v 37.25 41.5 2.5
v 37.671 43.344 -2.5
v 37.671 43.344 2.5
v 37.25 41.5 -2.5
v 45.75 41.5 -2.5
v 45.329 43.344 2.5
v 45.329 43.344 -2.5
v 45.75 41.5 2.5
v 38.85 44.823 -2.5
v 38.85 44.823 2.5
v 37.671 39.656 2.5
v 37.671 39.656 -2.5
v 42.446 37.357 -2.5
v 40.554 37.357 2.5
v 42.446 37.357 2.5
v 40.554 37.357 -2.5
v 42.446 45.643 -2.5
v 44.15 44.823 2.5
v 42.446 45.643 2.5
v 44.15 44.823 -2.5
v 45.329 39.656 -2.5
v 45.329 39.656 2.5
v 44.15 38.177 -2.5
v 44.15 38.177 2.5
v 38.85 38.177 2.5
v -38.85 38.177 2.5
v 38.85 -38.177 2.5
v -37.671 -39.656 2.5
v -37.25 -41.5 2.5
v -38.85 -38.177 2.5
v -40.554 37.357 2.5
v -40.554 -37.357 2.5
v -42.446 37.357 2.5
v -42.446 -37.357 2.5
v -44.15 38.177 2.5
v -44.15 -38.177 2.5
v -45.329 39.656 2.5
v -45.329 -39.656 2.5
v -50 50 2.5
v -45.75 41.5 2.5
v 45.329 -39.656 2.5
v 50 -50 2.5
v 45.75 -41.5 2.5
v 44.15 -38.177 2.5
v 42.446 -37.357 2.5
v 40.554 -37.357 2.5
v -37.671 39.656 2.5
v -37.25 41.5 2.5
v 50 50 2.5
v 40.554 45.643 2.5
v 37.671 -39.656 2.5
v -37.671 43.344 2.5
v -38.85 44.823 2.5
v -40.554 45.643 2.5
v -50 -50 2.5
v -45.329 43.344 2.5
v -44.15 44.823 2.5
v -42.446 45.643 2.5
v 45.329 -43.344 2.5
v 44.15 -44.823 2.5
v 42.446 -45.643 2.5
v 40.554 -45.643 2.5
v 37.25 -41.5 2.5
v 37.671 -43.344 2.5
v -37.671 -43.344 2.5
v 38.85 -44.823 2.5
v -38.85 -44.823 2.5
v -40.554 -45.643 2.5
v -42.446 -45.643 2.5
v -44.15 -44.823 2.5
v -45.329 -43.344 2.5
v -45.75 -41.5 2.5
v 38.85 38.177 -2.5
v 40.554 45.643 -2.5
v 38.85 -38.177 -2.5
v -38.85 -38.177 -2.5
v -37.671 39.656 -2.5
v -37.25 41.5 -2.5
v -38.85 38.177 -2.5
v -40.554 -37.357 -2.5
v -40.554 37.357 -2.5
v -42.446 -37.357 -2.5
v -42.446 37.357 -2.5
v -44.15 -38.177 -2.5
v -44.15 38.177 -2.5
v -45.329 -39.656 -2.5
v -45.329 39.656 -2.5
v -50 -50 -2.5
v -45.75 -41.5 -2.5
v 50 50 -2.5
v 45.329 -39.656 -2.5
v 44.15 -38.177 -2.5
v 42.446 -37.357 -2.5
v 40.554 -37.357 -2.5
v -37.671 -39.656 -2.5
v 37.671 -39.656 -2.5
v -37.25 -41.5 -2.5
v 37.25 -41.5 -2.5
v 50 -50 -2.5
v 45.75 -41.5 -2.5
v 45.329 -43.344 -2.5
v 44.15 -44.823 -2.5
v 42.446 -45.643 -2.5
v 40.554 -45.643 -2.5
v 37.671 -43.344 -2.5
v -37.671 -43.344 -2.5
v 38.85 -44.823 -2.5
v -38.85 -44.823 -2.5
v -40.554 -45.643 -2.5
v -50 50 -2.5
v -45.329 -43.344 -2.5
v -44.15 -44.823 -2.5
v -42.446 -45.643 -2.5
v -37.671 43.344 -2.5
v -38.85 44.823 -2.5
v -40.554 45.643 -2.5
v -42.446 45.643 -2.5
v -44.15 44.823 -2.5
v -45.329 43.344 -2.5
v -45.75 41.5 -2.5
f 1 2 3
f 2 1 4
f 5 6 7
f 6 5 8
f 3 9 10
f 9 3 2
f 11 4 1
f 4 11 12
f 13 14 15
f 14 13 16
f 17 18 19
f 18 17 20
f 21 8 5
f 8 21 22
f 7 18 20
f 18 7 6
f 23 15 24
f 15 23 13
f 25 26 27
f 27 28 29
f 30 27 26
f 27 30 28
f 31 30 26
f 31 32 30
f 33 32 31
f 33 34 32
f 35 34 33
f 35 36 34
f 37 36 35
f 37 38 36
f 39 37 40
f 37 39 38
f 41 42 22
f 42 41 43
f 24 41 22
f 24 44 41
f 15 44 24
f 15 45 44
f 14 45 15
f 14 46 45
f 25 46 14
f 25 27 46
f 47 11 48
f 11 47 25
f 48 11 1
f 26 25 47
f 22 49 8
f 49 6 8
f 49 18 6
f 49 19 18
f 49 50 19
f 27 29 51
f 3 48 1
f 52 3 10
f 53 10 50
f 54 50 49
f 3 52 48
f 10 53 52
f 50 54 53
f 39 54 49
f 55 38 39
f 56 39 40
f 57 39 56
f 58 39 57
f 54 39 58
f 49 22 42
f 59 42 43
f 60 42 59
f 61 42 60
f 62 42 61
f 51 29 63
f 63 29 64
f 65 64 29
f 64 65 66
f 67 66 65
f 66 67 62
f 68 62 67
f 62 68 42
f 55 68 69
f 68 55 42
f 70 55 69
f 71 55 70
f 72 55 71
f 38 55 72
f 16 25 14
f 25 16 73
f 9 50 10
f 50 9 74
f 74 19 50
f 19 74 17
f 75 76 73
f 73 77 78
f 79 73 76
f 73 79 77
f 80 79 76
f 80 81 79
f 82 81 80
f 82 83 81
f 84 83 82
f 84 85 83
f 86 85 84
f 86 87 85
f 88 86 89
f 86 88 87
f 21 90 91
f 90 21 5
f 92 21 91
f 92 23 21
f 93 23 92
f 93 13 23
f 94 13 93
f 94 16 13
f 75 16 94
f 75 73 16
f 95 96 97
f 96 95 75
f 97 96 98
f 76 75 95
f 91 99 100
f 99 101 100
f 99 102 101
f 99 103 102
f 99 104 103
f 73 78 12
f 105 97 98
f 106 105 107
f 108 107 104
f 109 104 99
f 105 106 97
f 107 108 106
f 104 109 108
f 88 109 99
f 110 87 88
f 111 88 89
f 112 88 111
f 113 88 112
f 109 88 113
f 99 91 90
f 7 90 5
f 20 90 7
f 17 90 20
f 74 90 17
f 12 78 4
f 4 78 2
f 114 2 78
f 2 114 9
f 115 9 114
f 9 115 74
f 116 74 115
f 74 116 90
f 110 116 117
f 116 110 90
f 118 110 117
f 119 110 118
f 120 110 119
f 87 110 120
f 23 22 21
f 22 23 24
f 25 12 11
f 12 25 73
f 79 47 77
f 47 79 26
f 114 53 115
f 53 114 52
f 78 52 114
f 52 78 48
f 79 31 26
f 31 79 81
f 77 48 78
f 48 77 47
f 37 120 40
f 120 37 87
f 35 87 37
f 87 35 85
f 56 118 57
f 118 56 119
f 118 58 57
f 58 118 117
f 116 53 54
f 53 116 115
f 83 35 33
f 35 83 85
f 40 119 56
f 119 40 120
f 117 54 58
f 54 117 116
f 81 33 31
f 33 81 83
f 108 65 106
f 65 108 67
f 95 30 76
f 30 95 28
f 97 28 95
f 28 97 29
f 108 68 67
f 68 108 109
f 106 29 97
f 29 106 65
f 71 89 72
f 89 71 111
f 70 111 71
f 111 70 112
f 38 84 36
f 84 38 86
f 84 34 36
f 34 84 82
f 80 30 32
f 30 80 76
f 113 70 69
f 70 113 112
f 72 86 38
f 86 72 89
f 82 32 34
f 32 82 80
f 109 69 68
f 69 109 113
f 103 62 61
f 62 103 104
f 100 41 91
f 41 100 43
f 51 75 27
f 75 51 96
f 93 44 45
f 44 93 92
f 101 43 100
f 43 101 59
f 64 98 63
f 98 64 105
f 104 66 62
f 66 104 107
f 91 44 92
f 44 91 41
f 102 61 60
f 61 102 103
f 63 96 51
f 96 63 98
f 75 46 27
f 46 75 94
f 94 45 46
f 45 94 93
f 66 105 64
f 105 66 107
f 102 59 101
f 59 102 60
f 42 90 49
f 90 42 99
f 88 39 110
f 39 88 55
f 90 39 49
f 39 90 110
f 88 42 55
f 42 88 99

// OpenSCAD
// Generated by SolidPython 1.1.3 on 2023-02-19 21:06:39


difference() {
	cube(center = true, size = [100, 100, 5]);
	union() {
		translate(v = [41.5000000000, 41.5000000000]) {
			cylinder(center = true, h = 5, r = 4.2500000000);
		}
		translate(v = [-41.5000000000, 41.5000000000]) {
			cylinder(center = true, h = 5, r = 4.2500000000);
		}
		translate(v = [-41.5000000000, -41.5000000000]) {
			cylinder(center = true, h = 5, r = 4.2500000000);
		}
		translate(v = [41.5000000000, -41.5000000000]) {
			cylinder(center = true, h = 5, r = 4.2500000000);
		}
	}
}
/***********************************************
*********      SolidPython code:      **********
************************************************
 
import solid
import numbers
import pudb
from solid.utils import *
import viewscad
import subprocess
import os
import os.path as osp
import math
import sys

chamfer_extrude=solid.import_scad("./chamfer_extrude.scad")
chamfer_extrude=chamfer_extrude.chamfer_extrude
r = viewscad.Renderer(width=800, height=800)

def debug(model,f_name,path="/home/ts/code/projects/mfd/designs/debug"):
    solid.scad_render_to_file(model,osp.join(path,f_name)+".scad")
#generate position list of wells using offset from center
wells_pos_from_center_4 = lambda offset: [[-offset,offset],
                                        [offset, offset],
                                        [-offset, -offset],
                                        [offset, -offset]]
#wells_pos_from_center_2 = lambda offset: [[0,offset],
#                                        [0, -offset]]
wells_pos_from_center_2 = lambda offset: [[offset,0],
                                        [-offset,0]]

def make_well(dims,shape=None,height=None,dxf=False):
    def circle_cylinder():
        if dxf or (height is None):
            well = solid.circle(r=dims, segments=64)
        else:
            well = solid.cylinder(r=dims, h=height, segments=64, center = True)
        return well
    if dims is None:
        sys.exit("radius needs to be a number")
    if isinstance(dims, numbers.Number):
        well =circle_cylinder()
    elif len(dims)==1:
        if isinstance(dims[1], numbers.Number):
            well =circle_cylinder()
        else:
            sys.exit("radius needs to be a number")
    elif len(dims)==2:
        well = solid.square(dims,center = True)
    elif len(dims)==3:
        well = solid.cube(dims, center = True)
    return well

def wells_top_bottom(center_gap,device_dims=None,shape=None,height=None, positions = None, dxf = False):
    well_shape = make_well(device_dims,shape=shape,height=height,dxf=dxf)
    wells = []
    if positions is None:
        offset = radius+radius/2.0
        positions = wells_pos_from_center_2(offset)
    if dxf or (height is None):
        height = 0
    for position in positions:
        if dxf:
            wells.append(solid.translate([position[0],position[1]])(well_shape))
        else:
            wells.append(solid.translate([position[0],position[1],height/2.0])(well_shape))
    return  union()(*wells)

#place wells in four corners 
def four_corner(radius,height=None, positions = None, dxf = False):
    #if well pos not specified set
    #to equally spaced by half radius
    if positions is None:
        offset = radius+radius/2.0
        positions = wells_pos_from_center_4(offset)
    if dxf or (height is None):
        height = 0
    #make wells at positions with specified radius and height
    wells = []
    for position in positions:
        #make circle if making dxf
        if dxf:
            well_shape = solid.circle(r=radius, segments=64)
            well_shape = solid.translate([position[0],position[1]])(well_shape)
        #if stl make cylinder
        else:
            well_shape = solid.cylinder(r=radius, h=height, segments=64, center = True)
            well_shape = solid.translate([position[0],position[1],height/2.0])(well_shape)
        wells.append(well_shape)
    return  union()(*wells)

#generate channels 
def make_channels(length,width,height=0,num_chans=1,max_chans=None,spacing=None, dxf = False,
                  rotate_channels=False):
    if dxf or (height is None):
        height = 0
    #if channel gap not defined, is equal to
    if spacing is None: spacing = width
    #calculate number of channels if fitting max num within given width
    if not max_chans is None:
        import math
        num_chans = math.floor((max_chans-spacing)/(width+spacing))
    #get total width of channel section  
    total_width = (width*num_chans)+(spacing*(num_chans-1))

    #make template channel
    #if rotate_channels: width, length = length, width
    if dxf:
        channel_t = solid.square([length,width],center = True)
    else:
        channel_t = solid.cube([length,width,height], center = True)

    #if number channels is even, offset the first channel to center its gap
    if num_chans % 2 == 0: centering = -(width/2.0+spacing/2.0)
    else: centering = 0
    #move template channel up to align bottom at z = 0 
    #and offset center if necessary
    if dxf:
        channel_t = solid.translate([0,centering])(channel_t)
    else:
        channel_t = solid.translate([0,centering,height/2.0])(channel_t)

    #if rotate_channels: length,width = width,length
    #start making the channels
    channels = []
    for i in range(num_chans):
        #if i=0 there is no translation
        #if i=1, we make the first channel adjacent to second
        direction = i

        #if i>=1, we add channels alternating left and right
        if i >= 1:
            direction = -(i/2.0)
            if i % 2 == 1: direction = (-direction)+0.5
                
        #make channel at right position and add it to channel list
        translation_coords = [0,direction*(width+spacing)]
        #if rotate_channels: translation_coords = [direction*(width+spacing),0]
        if dxf:
            channel = solid.translate(translation_coords)(channel_t)
        else:
            channel = solid.translate([*translation_coords,0])(channel_t)
        channels.append(channel)
    
    #group all channels as one object
    channels = union()(*channels)
    #compute the x,y,z dimensions in order to pass as arguments 
    #for construction of other parts of device (such as the chambers)
    measurements = {'x':(length/2.0,-length/2.0),
                    'y':(total_width/2.0,-total_width/2.0)}
    if not dxf:
        measurements['z'] = (height,0)
    if rotate_channels:
        channels = solid.rotate(90)(channels)
        measurements['x'],measurements['y']=measurements['y'],measurements['x']
    return channels,measurements

def make_chambers(msrs,height=None,extra=0,len_until=None,width=None, dxf = False):
    #computes x,y,z length
    total = lambda x : abs(x[0]) + abs(x[1])
    
    #if specific height if specified
    #otherwise use same height as channels
    if dxf:
        pass
    elif not height is None:
        msrs['z'] = (height,0)
    else:
        msrs['z'] = (0,0)
        
    #make copy of measurements from channels to modify chamber dimensions 
    #and add length to chambers as specified
    chamber_dims = msrs.copy()
    #calculate length of chamber to reach specified offset
    if not len_until is None:
        chamber_len = len_until-(msrs['x'][0])
    #or add specified length to channel length (if not specified, adds 0)
    else:
        chamber_len = msrs['x'][0]+extra
    #set the chamber length based 
    chamber_dims['x'] = (chamber_len/2.0,-(chamber_len/2.0))
    #compute final dimensions of chamber
    if not width is None:
        chamber_dims['y'] = (width/2.0,-width/2.0)
    chamber_dims = [total(size) for size in chamber_dims.values()]
        
    #calculate chamber translation offset to place adjacent to channels
    chamber_trslt = msrs['x'][0]+(chamber_len/2.0)
    #compute chamber translation coordinates to align with channels
    #x = 1 moves chamber above channels
    #x = -1 moves chamber below channels
    if dxf:
        trslt = lambda x : [x*(chamber_trslt),0]
    else:
        trslt = lambda x : [x*(chamber_trslt),0,msrs['z'][0]/2.0]
    
    #function to make chamber at top or at bottom 
    if dxf:
        move = lambda x : solid.translate(trslt(x))(solid.square(chamber_dims, center = True) )
    else:
        move = lambda x : solid.translate(trslt(x))(solid.cube(chamber_dims,center = True))
    #make top and bottom chambers and return them as grouped
    top = move(1)
    bottom = move(-1)
    #chambers=solid.rotate(90)(solid.union()(top,bottom))
    chambers=(solid.union()(top,bottom))

    return chambers

#create alignment features 
def alignment_features(unit,dims,grid_size, mask_size = None, alignment = "hollow", units_from_center = (2.5,2.5), corner_len=None):
    width = grid_size[0]*dims[0]
    length = grid_size[1]*dims[1]
    if mask_size is None and corner_len is None:
        corner_len = (dims[0] + dims[1]) /2 / 8
    corner = lambda thickness_div : solid.union()( solid.square([corner_len,corner_len/thickness_div],center=False), solid.square([corner_len/thickness_div,corner_len],center=False) )
    
    def make_full(thickness_div):
        thickness = corner_len/thickness_div
        tr = solid.translate([0, 0, 0 ])(solid.rotate(180)(corner(thickness_div)))
        tr = solid.translate([thickness/2,thickness/2,0])(tr)
        bl = solid.translate([0, 0, 0 ])(solid.rotate(0)(corner(thickness_div)))
        bl = solid.translate([-thickness/2,-thickness/2,0])(bl)
        return solid.union()(tr,bl)
    
    def make_hollow(thickness_div):
        thickness = corner_len/(thickness_div/2)
        inner = make_full(thickness_div)
        outer = make_full(thickness_div/2)
        hollow = outer - inner 
        return hollow
    
    center = (width /2 , length/2)
    mask_pos = lambda x,y : (center[0] + x*(float(units_from_center[0])*dims[0]), center[1] + y*(float(units_from_center[1])*dims[1]))
    positions = []
    positions.append(mask_pos(1,0))
    positions.append(mask_pos(0,1))
    positions.append(mask_pos(-1,0))
    positions.append(mask_pos(0,-1))
    make_mask = lambda mtype : make_hollow(8) if mtype == "hollow" else make_full(8)
    masks = [ solid.translate([*position,0])(make_mask(alignment)) for position in positions]
    
    solid.scad_render_to_file(solid.union()(*masks),"./designs/open_chamber/masks.scad")
    #return unit - solid.union()(*masks)
    return solid.union()(*masks,unit)

def create_outline(thickness, array, dims, grid_size,):
    width = grid_size[0]*dims[0] + thickness *2
    length = grid_size[1]*dims[1] + thickness *2
    outer = solid.translate([-thickness, -thickness,0])(solid.square([width, length]))
    return outer-array

def create_wall(wall_thickness, outline_thickness, dims, grid_size, wall_height = 2000, dxf = False):
    inner_width = grid_size[0]*dims[0] + outline_thickness *2
    inner_length = grid_size[1]*dims[1] + outline_thickness *2
    outer_width = inner_width + wall_thickness * 2
    outer_length = inner_length + wall_thickness * 2
    outer_pos_x = -outline_thickness-wall_thickness
    outer_pos_y = -outline_thickness-wall_thickness
    inner_pos_x = -outline_thickness
    inner_pos_y = -outline_thickness
    if dxf:
        inner_wall = solid.translate([inner_pos_x,
                                      inner_pos_y,
                                      0])(solid.square([inner_width, inner_length]))
        outer_wall = solid.translate([outer_pos_x,
                                      outer_pos_y,
                                      0])(solid.square([outer_width, outer_length]))

        return outer_wall-inner_wall
    else:
        inner_wall = solid.translate([inner_pos_x,
                                      inner_pos_y,
                                      0])(solid.cube([inner_width, inner_length,wall_height]))
        outer_wall = solid.translate([outer_pos_x,
                                      outer_pos_y,
                                      0])(solid.cube([outer_width, outer_length,wall_height]))

        return outer_wall-inner_wall, {'wall_height': wall_height,
                                       'wall_thickness': wall_thickness,
                                       'inner_width':inner_width,
                                       'inner_length': inner_length,
                                       'outer_width': outer_width,
                                       'outer_length': outer_length,
                                       'outer_pos_x' : outer_pos_x,
                                       'outer_pos_y' : outer_pos_y,
                                       'inner_pos_x' : inner_pos_x,
                                       'inner_pos_y' : inner_pos_y}

def create_thicker_wall(wall_thickness, outer_wall_offset, wall_dims, dims, grid_size, height_start = .2, height_end=2, dxf = False):
    addon_wall,thicker_wall_dims = create_wall(wall_thickness, outer_wall_offset, dims, grid_size, wall_height=height_end-height_start, dxf = False)
    addon_wall = solid.translate([0,0,height_start])(addon_wall)

    thicker_wall_dims['wall_height'] = height_end
    thicker_wall_dims['wall_thickness'] = wall_dims['wall_thickness'] + wall_thickness
    return addon_wall, thicker_wall_dims
 
def add_lock_to_wall(wall,wall_dims,y_offset = 0,cut_ratio=0.7,L_length=3, gap_ratio=0.05, axis="x",width_ratio=1/2):
    # Makes L shape
    def make_L(max_length,length_thickness,max_width,width_thickness,height,y_offset):
        length = solid.cube([max_length,length_thickness,height])
        width = solid.cube([width_thickness,max_width,height])
        width = solid.translate([max_length-(width_thickness),0,0])(width)
        L = solid.union()(width,length)
        debug(L,"L")
        if axis == "x":
            L = solid.rotate(-90)(L)
            L = solid.translate([0,max_length,0])(L)
        else:
            L = solid.rotate(-180)(L)
            L = solid.translate([max_length,max_width,0])(L)
        return solid.translate([0,0,y_offset])(L)
    
    lock_length = L_length
    lock_width = wall_dims['wall_thickness']*width_ratio
    lock_length_thickness = lock_width/2
    lock_width_thickness = lock_width/2
    L_lock = make_L(lock_length,lock_length_thickness,lock_width,lock_width_thickness, wall_dims['wall_height']-y_offset, y_offset)
    
    margin_space = lock_length - lock_length*(1-gap_ratio)
    key_length = lock_length-margin_space
    key_length_thickness = lock_length_thickness-(margin_space*2)
    key_width = lock_width-(margin_space*2)
    key_width_thickness = lock_width_thickness-(margin_space*2)
    L_key = make_L(key_length,key_length_thickness,key_width,key_width_thickness, wall_dims['wall_height']-y_offset, y_offset)
    L_key = solid.translate([margin_space,margin_space,0])(L_key)
    L = solid.union()(L_lock,L_key)
    debug(L,"L")
    
    #Make cube to be used as negative to split frame in a half
    #Can choose if making left or right negative, specify ratio of split
    def make_negative(right,cut_ratio):
        if axis == "x":
            if right:
                length = wall_dims['outer_length']*(1-cut_ratio)
                pos_x = wall_dims['outer_pos_x']+(wall_dims['outer_length']*cut_ratio)
            else:
                length = wall_dims['outer_length']*(cut_ratio)
                pos_x = wall_dims['outer_pos_x'] 
            negative = solid.cube([wall_dims['outer_width'],length, wall_dims['wall_height']])
            negative = solid.translate([wall_dims['outer_pos_y'],pos_x,0])(negative)
        else:
            if right:
                length = wall_dims['outer_width']*(1-cut_ratio)
                pos_x = wall_dims['outer_pos_y']+(wall_dims['outer_width']*cut_ratio)
            else:
                length = wall_dims['outer_width']*(cut_ratio)
                pos_x = wall_dims['outer_pos_y'] 
            negative = solid.cube([length,wall_dims['outer_length'], wall_dims['wall_height']])
            negative = solid.translate([pos_x,wall_dims['outer_pos_x'],0])(negative)
        return negative, pos_x, length 
                      
    #Make negatives
    negative_right, right_half_pos_x, right_half_length = make_negative(True,cut_ratio)
    negative_left, left_half_pos_x, right_half_length = make_negative(False,cut_ratio)
    #Make halves
    left_half = solid.difference()(wall,negative_right)
    right_half = solid.difference()(wall,negative_left)
    def place_L(L, L_length,L_width):
        #Place L on top wall       
        offset_to_center = (wall_dims['wall_thickness']-L_width)/2
        if axis == "x":
            y_pos_top = (wall_dims['outer_pos_y'] +
                    wall_dims['outer_width'] - 
                    L_width - offset_to_center)
            top_L = solid.translate([y_pos_top,
                                     right_half_pos_x-(L_length),
                                     0])(L)
            #Place L on bottom wall       
            y_pos_bottom = wall_dims['outer_pos_y']+offset_to_center
            bottom_L = solid.translate([y_pos_bottom,
                                        right_half_pos_x-L_length,
                                        0])(L)
        else:
            y_pos_top = (wall_dims['outer_pos_x'] +
                    wall_dims['outer_length'] -
                    (L_width+offset_to_center))
            top_L = solid.translate([right_half_pos_x-L_length,
                                     y_pos_top,
                                     0])(L)
            #Place L on bottom wall       
            y_pos_bottom = wall_dims['outer_pos_y']+offset_to_center
            bottom_L = solid.translate([right_half_pos_x-L_length,
                                        y_pos_bottom,
                                        0])(L)
        return bottom_L, top_L
    #Make complimentary L pieces through union and differences
    #Make Lock
    bottom_L_lock, top_L_lock = place_L(L_lock,L_length,lock_width)
    left_half = solid.difference()(left_half,bottom_L_lock)
    left_half = solid.difference()(left_half,top_L_lock)
    #Make Key
    bottom_L_key, top_L_key = place_L(L_key,L_length,lock_width)
    right_half = solid.union()(right_half,bottom_L_key)
    right_half = solid.union()(right_half,top_L_key)
    return left_half, right_half


#build a row x col grid of containment units
def make_unit_array(unit,dims,grid_size, dxf = False, alignment = None, mask_size = None,
                    units_from_center = None,alignment_offset=None, alignment_mark_size=1):
    units = []
    for col in range(grid_size[1]):
        for row in range(grid_size[0]):
            if dxf:
                units.append(solid.translate([row*dims[0],col*dims[1]])(unit))
            else:
                units.append(solid.translate([row*dims[0],col*dims[1],dims[2]/2.0])(unit))
    array = solid.union()(*units)
    if (not alignment is None) and dxf:
        if not alignment_offset is None:
            array = solid.translate([alignment_offset[0],alignment_offset[1]])(array)
        array = alignment_features(array,dims, grid_size, alignment = alignment, mask_size = None, units_from_center = units_from_center,corner_len=alignment_mark_size)
        if not alignment_offset is None:
            array = solid.translate([-alignment_offset[0],-alignment_offset[1]])(array)
    return array


def make_taylor(wells_pos = wells_pos_from_center_4(2.25), well_rad = 1.5 ,
                well_height = 2, chan_w = 0.01, chan_l = 1, chan_h = 0.010 ,
                chan_gap = 0.040, max_chans = None,num_chans=100, chamber_height  = 0.100,
                columns = 1, rows = 1, chamber_len_until=2.25, add_channels = True, add_wells = True, 
                add_chambers = True, save_path = "./", alignment = None, units_from_center = 2,
                mask_size = None, render_stl = False, outline_thickness = 0.050, dxf = True,
                wall_height = 15, wall_thickness = 0.95, casing_x=9, casing_y=9, casing_z=0,rotate_units=0):

    dims = [casing_x, casing_y, casing_z]
    wells = four_corner(well_rad,well_height, dxf = dxf, positions = wells_pos)
    debug(wells,"wells")
    channels, msrs = make_channels(chan_l,chan_w,chan_h,dxf=dxf, spacing = chan_gap, max_chans=max_chans,num_chans=num_chans)
    debug(channels,"channels")
    chambers = make_chambers(msrs,dxf = dxf, height=chamber_height,len_until=chamber_len_until)
    debug(chambers,"chambers")

    #add together and render
    device_parts = []
    if add_channels:
        device_parts.append(channels)
    if add_wells:
        device_parts.append(wells)
    if add_chambers:
        device_parts.append(chambers)
    device=union()(*device_parts)
    device = rotate(rotate_units)(device)

    device=solid.translate([dims[0]/2.0,dims[1]/2.0,0])(device)
    channels = rotate(rotate_units)(channels)
    channels=solid.translate([dims[0]/2,dims[1]/2,0])(channels)
    chambers_wells = union()(wells,chambers)
    chambers_wells = rotate(rotate_units)(chambers_wells)
    chambers_wells=solid.translate([dims[0]/2,dims[1]/2,0])(chambers_wells)

    file_name = str(rows)+'x'+str(columns)+'_units_'
    grid_size = [rows,columns]

    if alignment:
        alignment="full"
    device = make_unit_array(device,dims,grid_size, dxf=dxf, alignment = alignment,
                                 units_from_center = units_from_center)
    channels = make_unit_array(channels,dims,grid_size, dxf=dxf, alignment = alignment,
                                 units_from_center = units_from_center)
    if alignment=="full":
        alignment="hollow"

    chambers_wells = make_unit_array(chambers_wells,dims,grid_size, dxf=dxf, alignment = alignment,
                                 units_from_center =units_from_center)

    def save_model(model,prefix):
        model_fname = os.path.abspath(save_path+prefix+"_"+file_name+".scad")
        solid.scad_render_to_file(model,model_fname)
        return model_fname

    wells_fname = save_model(wells,"wells")
    channels_fname = save_model(channels,"channels")
    device_fname = save_model(device,"device")
    chambers_wells_fname = save_model(chambers_wells,"chambers_wells")
    return (chambers_wells,chambers_wells_fname), (channels,channels_fname), (device,device_fname)

def make_device(design='open',rows=8,columns=6,wells_pos = 4.5,well_offset=3.2, well_rad=3.2,well_height=0.1,
                chan_l=1,chan_w=0.01,chan_h=0.01,chan_gap=0.015,num_chans=101,dxf=True,save_path="./designs/open_chamber/",
                casing_x=9.0,casing_y=18.0,casing_z=0,rotate_units=90,units_from_center=(3,1),chamber_len_until=4.5,
                chamber_width=None,alignment=True, add_wells=True, add_channels=True,add_chambers=True):

    dims = [casing_x, casing_y, casing_z]
    if design == "open":
        wells_pos=wells_pos_from_center_2(wells_pos)
        wells = wells_top_bottom(well_offset*2,device_dims=well_rad,height=well_height, dxf = dxf, positions = wells_pos)
    elif design == "closed":
        wells_pos=wells_pos_from_center_4(wells_pos)
        debug(wells,"wells")
        wells = four_corner(well_offset,well_heightdevice_dims=well_rad, dxf = dxf, positions = wells_pos)
    else:
        print(design+" is not a valid design.\n Choose valid design: 'open' or 'closed'")
        exit()
    wells = rotate(rotate_units)(wells)
    wells=solid.translate([dims[0]/2,dims[1]/2,0])(wells)
    debug(wells,"wells")

    channels, msrs = make_channels(chan_l,chan_w,chan_h,dxf=dxf, spacing = chan_gap, num_chans=num_chans,rotate_channels=False)
    channels = rotate(rotate_units)(channels)
    channels=solid.translate([dims[0]/2,dims[1]/2,0])(channels)

    chambers=make_chambers(msrs,height=None,extra=0,len_until=chamber_len_until, width=chamber_width,dxf = dxf)
    chambers = rotate(rotate_units)(chambers)
    chambers=solid.translate([dims[0]/2,dims[1]/2,0])(chambers)

    device_parts = []
    if add_channels:
        device_parts.append(channels)
    if add_wells:
        device_parts.append(wells)
    if add_chambers:
        device_parts.append(chambers)
    device = union()(*device_parts)
    #device = rotate(rotate_units)(device)
    #device=solid.translate([dims[0]/2.0,dims[1]/2.0,0])(device)

    chambers_wells = []
    if add_chambers:
        chambers_wells.append(chambers)
    if add_wells:
        chambers_wells.append(wells)
    chambers_wells = union()(*chambers_wells)
    #chambers_wells = union()(wells,chambers)
    #chambers_wells = rotate(rotate_units)(chambers_wells)
    #chambers_wells=solid.translate([dims[0]/2,dims[1]/2,0])(chambers_wells)

    file_name = str(rows)+'x'+str(columns)+'_units_'

    grid_size = [rows,columns]
    if alignment:
        alignment="full"
    device = make_unit_array(device,dims,grid_size, dxf=dxf, alignment = alignment,
                                 units_from_center = units_from_center)
    channels = make_unit_array(channels,dims,grid_size, dxf=dxf, alignment = alignment,
                                 units_from_center = units_from_center)
    if alignment=="full":
        alignment="hollow"

    chambers_wells = make_unit_array(chambers_wells,dims,grid_size, dxf=dxf, alignment = alignment,
                                 units_from_center =units_from_center)

    def save_model(model,prefix):
        model_fname = os.path.abspath(save_path+prefix+"_"+file_name+".scad")
        solid.scad_render_to_file(model,model_fname)
        return model_fname

    wells_fname = save_model(wells,"wells")
    channels_fname = save_model(channels,"channels")
    device_fname = save_model(device,"device")
    chambers_wells_fname = save_model(chambers_wells,"chambers_wells")
    return (chambers_wells,chambers_wells_fname), (channels,channels_fname), (device,device_fname)


def make_open_chamber(rows=8,columns=6,wells_pos = wells_pos_from_center_2(4.5), well_rad=3.2,well_height=0.1,
                      chan_l=1,chan_w=0.01,chan_h=0.01,chan_gap=0.015,num_chans=101,dxf=True,save_path="./designs/open_chamber/",
                      casing_x=9.0,casing_y=18.0,casing_z=0,rotate_units=90,units_from_center=(3,1),chamber_len_until=4.5,
                      chamber_width=None,alignment=True, add_wells=True, add_channels=True,add_chambers=True):

    dims = [casing_x, casing_y, casing_z]
    wells = wells_top_bottom(well_rad,height=well_height, dxf = dxf, positions = wells_pos)
    channels, msrs = make_channels(chan_l,chan_w,chan_h,dxf=dxf, spacing = chan_gap, num_chans=num_chans,rotate_channels=False)
    chambers=make_chambers(msrs,height=None,extra=0,len_until=chamber_len_until, width=chamber_width,dxf = dxf)
    debug(chambers,"chambers")
    device_parts = []
    if add_channels:
        device_parts.append(channels)
    if add_wells:
        device_parts.append(wells)
    if add_chambers:
        device_parts.append(chambers)
    device = union()(*device_parts)
    device = rotate(rotate_units)(device)
    device=solid.translate([dims[0]/2.0,dims[1]/2.0,0])(device)
    channels = rotate(rotate_units)(channels)
    channels=solid.translate([dims[0]/2,dims[1]/2,0])(channels)
    chambers_wells = union()(wells,chambers)
    chambers_wells = rotate(rotate_units)(chambers_wells)
    chambers_wells=solid.translate([dims[0]/2,dims[1]/2,0])(chambers_wells)

    file_name = str(rows)+'x'+str(columns)+'_units_'

    grid_size = [rows,columns]
    if alignment:
        alignment="full"
    device = make_unit_array(device,dims,grid_size, dxf=dxf, alignment = alignment,
                                 units_from_center = units_from_center)
    channels = make_unit_array(channels,dims,grid_size, dxf=dxf, alignment = alignment,
                                 units_from_center = units_from_center)
    if alignment=="full":
        alignment="hollow"

    chambers_wells = make_unit_array(chambers_wells,dims,grid_size, dxf=dxf, alignment = alignment,
                                 units_from_center =units_from_center)

    def save_model(model,prefix):
        model_fname = os.path.abspath(save_path+prefix+"_"+file_name+".scad")
        solid.scad_render_to_file(model,model_fname)
        return model_fname

    wells_fname = save_model(wells,"wells")
    channels_fname = save_model(channels,"channels")
    device_fname = save_model(device,"device")
    chambers_wells_fname = save_model(chambers_wells,"chambers_wells")
    return (chambers_wells,chambers_wells_fname), (channels,channels_fname), (device,device_fname)

def to_dxf(scad_path):
    dxf_path = scad_path.replace(".scad",".dxf")
    subprocess.call(["openscad", "-o", dxf_path, scad_path])
    import ezdxf
    temp_dxf = ezdxf.readfile(dxf_path)
    temp_dxf.saveas(dxf_path)

#def make_walls(diameter,thickness,grid_size,dims,height=20,segments=256,make_inner=True):
#    wafer_wall_out = solid.cylinder(r=diameter/2,h=height, segments=segments)
#    wafer_wall_in = solid.cylinder(r=(diameter/2-thickness),h=height, segments=segments)
#    wafer_wall = solid.difference()(wafer_wall_out,wafer_wall_in)
#    wafer_wall = solid.translate([grid_size[1]*dims[1]/2.0,grid_size[0]*dims[0]/2.0])(wafer_wall)
#
#    vertical_wall_length = grid_size[1]*dims[1]
#    horizontal_wall_length = grid_size[0]*dims[0]
#    vertical_wall = solid.cube([vertical_wall_length,thickness,height],center = True)
#    vertical_wall = solid.translate([vertical_wall_length/2,0,height/2])(vertical_wall)
#    horizontal_wall = solid.cube([thickness,horizontal_wall_length,height],center = True)
#    horizontal_wall = solid.translate([0,vertical_wall_length/2,height/2])(horizontal_wall)
#    walls = []
#    walls.append(horizontal_wall)
#    walls.append(vertical_wall)
#    for col in range(grid_size[1]):
#        if col == grid_size[1]-1: 
#            walls.append(solid.translate([0,(col+1)*dims[1]])(vertical_wall))
#        elif col > 0 and col < grid_size[1]-1 and make_inner==True:
#            walls.append(solid.translate([0,(col+1)*dims[1]])(vertical_wall))
#    for row in range(grid_size[0]):
#        if row == grid_size[0]-1: 
#            walls.append(solid.translate([(row+1)*dims[0],0])(horizontal_wall))
#        elif row > 0 and row < grid_size[0]-1 and make_inner==True:
#            walls.append(solid.translate([(row+1)*dims[0],0])(horizontal_wall))
#    walls = union()(*walls)
#    wafer_walls = union()(walls,wafer_wall)
#    return walls,wafer_wall,wafer_walls

def make_walls(diameter,thickness,grid_size,dims,height=20,segments=256,make_inner=True,padx=0,pady=0):
    wafer_wall_out = solid.cylinder(r=diameter/2,h=height, segments=segments)
    wafer_wall_in = solid.cylinder(r=(diameter/2-thickness),h=height, segments=segments)
    wafer_wall = solid.difference()(wafer_wall_out,wafer_wall_in)
    wafer_wall = solid.translate([grid_size[1]*dims[1]/2.0,grid_size[0]*dims[0]/2.0])(wafer_wall)

    vertical_wall_length = grid_size[0]*dims[0]+padx
    horizontal_wall_length = grid_size[1]*dims[1]+pady
    vertical_wall = solid.cube([vertical_wall_length,thickness,height],center = True)
    vertical_wall = solid.translate([vertical_wall_length/2-pady/2,-padx/2,height/2])(vertical_wall)
    horizontal_wall = solid.cube([thickness,horizontal_wall_length,height],center = True)
    horizontal_wall = solid.translate([-pady/2,horizontal_wall_length/2-padx/2,height/2])(horizontal_wall)
    walls = []
    walls.append(horizontal_wall)
    walls.append(vertical_wall)
    for col in range(grid_size[1]):
        if col == grid_size[1]-1: 
            walls.append(solid.translate([0,(col+1)*dims[1]+pady])(vertical_wall))
        elif col > 0 and col < grid_size[1]-1 and make_inner==True:
            walls.append(solid.translate([0,(col+1)*dims[1]])(vertical_wall))
    for row in range(grid_size[0]):
        if row == grid_size[0]-1: 
            walls.append(solid.translate([(row+1)*dims[0]+padx,0])(horizontal_wall))
        elif row > 0 and row < grid_size[0]-1 and make_inner==True:
            walls.append(solid.translate([(row+1)*dims[0],0])(horizontal_wall))
    walls = union()(*walls)
    wafer_walls = union()(walls,wafer_wall)
    return walls,wafer_wall,wafer_walls

def save_model(model,base_path,base_name,dxf=True):
    if not os.path.exists(base_path):
        os.makedirs(base_path)
    dxf_path=osp.join(base_path,base_name+".scad")
    solid.scad_render_to_file(model,osp.join(dxf_path))
    if dxf:
        to_dxf(dxf_path)

def make_wafer(diameter,flat_len,thickness):
    wafer = solid.cylinder(r1=diameter/2,r2=diameter/2,h=thickness,segments=512,)()
    x_start_flat=(flat_len/2)
    y_start_flat = math.sqrt(((diameter/2)**2) - (x_start_flat**2) )
    height_delete_flat=diameter/2-y_start_flat
    flat_delete = solid.cube([flat_len,height_delete_flat,thickness],center=False)()
    flat_delete = solid.translate([-flat_len/2,y_start_flat,0])(flat_delete)
    wafer = solid.difference()(wafer,flat_delete)
    wafer = solid.rotate(90)(wafer)
    return wafer

def add_wafer_to_mask(wafer_size,flat_len,mask,grid_size,dims,wafer_line_thickness=0.1,outer_mask_thickness=5,alignment_offset=None):
    def make_wafer_mask(wafer_size,flat_len):
        wafer_mask = make_wafer(wafer_size,flat_len,1)
        wafer_mask = solid.projection()(wafer_mask)
        wafer_mask = solid.translate([grid_size[0]*dims[0]/2.0,grid_size[1]*dims[1]/2.0])(wafer_mask)
        if not alignment_offset is None:
            wafer_mask = solid.translate([-alignment_offset[0],-alignment_offset[1]])(wafer_mask)
        return wafer_mask

    inner_wafer_line_mask = make_wafer_mask(wafer_size-wafer_line_thickness/2,flat_len)
    outer_wafer_line_mask = make_wafer_mask(wafer_size+wafer_line_thickness/2,flat_len)
    outer_wafer_mask = make_wafer_mask(wafer_size+outer_mask_thickness,flat_len)
    outer_wafer_mask = solid.difference()(outer_wafer_mask,outer_wafer_line_mask)
    wafer_mask = solid.union()(outer_wafer_mask,inner_wafer_line_mask)

    return solid.difference()(wafer_mask,mask)

def make_posts(post_shape,post_height):
    posts = solid.linear_extrude(height=post_height)(post_shape)
    return posts

def make_wafer_empty(diameter,flat_len,thickness,margin,notch_len=20,notch_height=5,oversize=1.01):
    diameter*=oversize
    flat_len*=oversize
    wafer = make_wafer(diameter,flat_len,thickness)
    holder = solid.cylinder(r1=diameter/2+margin,r2=diameter/2+margin,h=thickness,segments=512)()
    holder = solid.difference()(holder,wafer)

    x_start_flat=(flat_len/2)
    y_start_flat = math.sqrt(((diameter/2)**2) - (x_start_flat**2) )
    height_delete_flat=diameter/2-y_start_flat
    notch = solid.cube([notch_len,notch_height,thickness],center=False)()
    notch = solid.translate([-notch_len/2,y_start_flat,0])(notch)
    notch = solid.rotate(90)(notch)
    return solid.difference()(holder,notch)

def wafer_print_calibration(diameter,thickness,height,z_offset):
    circles = []
    radii = []
    radii.append(diameter/2.0*0.8)
    radii.append(diameter/2.0*0.6)
    radii.append(diameter/2.0*0.4)
    radii.append(diameter/2.0*0.2)
    for radius in radii:
        inner = solid.cylinder(r1=radius-(thickness/2.0),r2=radius-(thickness/2.0),h=thickness,segments=512,)()
        outer = solid.cylinder(r1=radius+(thickness/2.0),r2=radius+(thickness/2.0),h=thickness,segments=512,)()
        diff = solid.difference()(outer,inner)
        circles.append(diff)
    circles = solid.union()(*circles)
    circles = solid.translate([0,0,z_offset])(circles)
    return circles

def make_rack(wells,dims,grid_size,alignment_offset,rack_x,rack_y,rack_thickness,bolt_width,add_bolts=True):

    #get X and Y dimensions of gride of pipette tips
    X_len = dims[0]*grid_size[0]
    Y_len = dims[1]*grid_size[1]
    #make rack
    rack = solid.cube([rack_x,rack_y,rack_thickness],center=True)

    if add_bolts:
    #add bolt holes
        bolt_hole=solid.cylinder(r=bolt_width/2,h=rack_thickness,center=True)()
        bolt_holes = []
        bolt_holes.append(solid.translate([rack_x/2-1.5*bolt_width,rack_y/2-1.5*bolt_width])(bolt_hole))
        bolt_holes.append(solid.translate([-rack_x/2+1.5*bolt_width,rack_y/2-1.5*bolt_width])(bolt_hole))
        bolt_holes.append(solid.translate([-rack_x/2+1.5*bolt_width,-rack_y/2+1.5*bolt_width])(bolt_hole))
        bolt_holes.append(solid.translate([rack_x/2-1.5*bolt_width,-rack_y/2+1.5*bolt_width])(bolt_hole))
        bolt_holes = solid.union()(*bolt_holes)
        rack=solid.difference()(rack,bolt_holes)
    rack_support = rack

    #center rack with pipette holes
    rack = solid.translate([0,0,rack_thickness/2])(rack)
    rack = solid.translate([X_len/2,Y_len/2])(rack)
    rack = solid.translate([-alignment_offset[0],-alignment_offset[1]])(rack)
    wells = solid.linear_extrude(height=rack_thickness)(wells)
    rack = solid.difference()(rack,wells)
    return rack, rack_support

def make_pillar(wells,dims,grid_size,alignment_offset,rack_x,rack_y,pillar_height,rack_thickness,bolt_width,add_bolts=True,taper_angle=1,bolt_position_corner=1.5):

    #get X and Y dimensions of gride of pipette tips
    X_len = dims[0]*grid_size[0]
    Y_len = dims[1]*grid_size[1]
    #make rack
    rack = solid.cube([rack_x,rack_y,rack_thickness],center=True)
    
    if add_bolts:
    #add bolt holes
        bolt_hole=solid.cylinder(r=bolt_width/2,h=rack_thickness,center=True)()
        bolt_holes = []
        bolt_holes.append(solid.translate([rack_x/2-bolt_position_corner*bolt_width,rack_y/2-bolt_position_corner*bolt_width])(bolt_hole))
        bolt_holes.append(solid.translate([-rack_x/2+bolt_position_corner*bolt_width,rack_y/2-bolt_position_corner*bolt_width])(bolt_hole))
        bolt_holes.append(solid.translate([-rack_x/2+bolt_position_corner*bolt_width,-rack_y/2+bolt_position_corner*bolt_width])(bolt_hole))
        bolt_holes.append(solid.translate([rack_x/2-bolt_position_corner*bolt_width,-rack_y/2+bolt_position_corner*bolt_width])(bolt_hole))
        bolt_holes = solid.union()(*bolt_holes)
        rack=solid.difference()(rack,bolt_holes)
    rack_support = rack

    #center rack with pipette holes
    #rack = solid.translate([0,0,-rack_thickness])(rack)
    rack = solid.translate([X_len/2,Y_len/2])(rack)
    rack = solid.translate([-alignment_offset[0],-alignment_offset[1]])(rack)
    if not taper_angle == 0:
        wells=chamfer_extrude(pillar_height,taper_angle,segments=20)(wells)
    else:
        wells = solid.linear_extrude(height=pillar_height)(wells)
    rack = solid.union()(rack,wells)
    return rack, rack_support









 
 
************************************************/
